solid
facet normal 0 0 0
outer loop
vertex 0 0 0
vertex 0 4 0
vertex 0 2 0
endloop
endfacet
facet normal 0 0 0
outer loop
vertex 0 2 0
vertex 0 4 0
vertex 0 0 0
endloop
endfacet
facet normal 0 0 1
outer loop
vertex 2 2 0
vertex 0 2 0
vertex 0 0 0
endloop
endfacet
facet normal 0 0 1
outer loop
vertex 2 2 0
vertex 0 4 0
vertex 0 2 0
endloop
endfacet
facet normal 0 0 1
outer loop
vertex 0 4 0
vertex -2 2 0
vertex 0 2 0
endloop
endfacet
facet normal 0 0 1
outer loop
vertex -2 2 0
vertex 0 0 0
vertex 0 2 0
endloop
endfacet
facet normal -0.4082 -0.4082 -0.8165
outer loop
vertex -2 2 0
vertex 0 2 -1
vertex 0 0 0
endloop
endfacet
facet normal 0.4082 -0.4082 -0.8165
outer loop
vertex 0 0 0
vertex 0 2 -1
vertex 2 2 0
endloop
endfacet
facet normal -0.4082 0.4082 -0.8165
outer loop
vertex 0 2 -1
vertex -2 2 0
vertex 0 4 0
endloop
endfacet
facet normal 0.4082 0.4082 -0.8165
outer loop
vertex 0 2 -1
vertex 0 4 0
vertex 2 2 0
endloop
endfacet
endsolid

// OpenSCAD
polyhedron([
[0,2,0],  //0
[0,4,0],  //1
[0,0,0],  //2
[0,2,-1], //3
[2,2,0],  //4
[-2,2,0] //5
],[
[0,1,2],
[2,1,0],
[2,0,4],
[0,1,4],
[0,5,1],
[0,2,5],
[2,3,5],
[4,3,2],
[1,5,3],
[4,1,3],
]);
